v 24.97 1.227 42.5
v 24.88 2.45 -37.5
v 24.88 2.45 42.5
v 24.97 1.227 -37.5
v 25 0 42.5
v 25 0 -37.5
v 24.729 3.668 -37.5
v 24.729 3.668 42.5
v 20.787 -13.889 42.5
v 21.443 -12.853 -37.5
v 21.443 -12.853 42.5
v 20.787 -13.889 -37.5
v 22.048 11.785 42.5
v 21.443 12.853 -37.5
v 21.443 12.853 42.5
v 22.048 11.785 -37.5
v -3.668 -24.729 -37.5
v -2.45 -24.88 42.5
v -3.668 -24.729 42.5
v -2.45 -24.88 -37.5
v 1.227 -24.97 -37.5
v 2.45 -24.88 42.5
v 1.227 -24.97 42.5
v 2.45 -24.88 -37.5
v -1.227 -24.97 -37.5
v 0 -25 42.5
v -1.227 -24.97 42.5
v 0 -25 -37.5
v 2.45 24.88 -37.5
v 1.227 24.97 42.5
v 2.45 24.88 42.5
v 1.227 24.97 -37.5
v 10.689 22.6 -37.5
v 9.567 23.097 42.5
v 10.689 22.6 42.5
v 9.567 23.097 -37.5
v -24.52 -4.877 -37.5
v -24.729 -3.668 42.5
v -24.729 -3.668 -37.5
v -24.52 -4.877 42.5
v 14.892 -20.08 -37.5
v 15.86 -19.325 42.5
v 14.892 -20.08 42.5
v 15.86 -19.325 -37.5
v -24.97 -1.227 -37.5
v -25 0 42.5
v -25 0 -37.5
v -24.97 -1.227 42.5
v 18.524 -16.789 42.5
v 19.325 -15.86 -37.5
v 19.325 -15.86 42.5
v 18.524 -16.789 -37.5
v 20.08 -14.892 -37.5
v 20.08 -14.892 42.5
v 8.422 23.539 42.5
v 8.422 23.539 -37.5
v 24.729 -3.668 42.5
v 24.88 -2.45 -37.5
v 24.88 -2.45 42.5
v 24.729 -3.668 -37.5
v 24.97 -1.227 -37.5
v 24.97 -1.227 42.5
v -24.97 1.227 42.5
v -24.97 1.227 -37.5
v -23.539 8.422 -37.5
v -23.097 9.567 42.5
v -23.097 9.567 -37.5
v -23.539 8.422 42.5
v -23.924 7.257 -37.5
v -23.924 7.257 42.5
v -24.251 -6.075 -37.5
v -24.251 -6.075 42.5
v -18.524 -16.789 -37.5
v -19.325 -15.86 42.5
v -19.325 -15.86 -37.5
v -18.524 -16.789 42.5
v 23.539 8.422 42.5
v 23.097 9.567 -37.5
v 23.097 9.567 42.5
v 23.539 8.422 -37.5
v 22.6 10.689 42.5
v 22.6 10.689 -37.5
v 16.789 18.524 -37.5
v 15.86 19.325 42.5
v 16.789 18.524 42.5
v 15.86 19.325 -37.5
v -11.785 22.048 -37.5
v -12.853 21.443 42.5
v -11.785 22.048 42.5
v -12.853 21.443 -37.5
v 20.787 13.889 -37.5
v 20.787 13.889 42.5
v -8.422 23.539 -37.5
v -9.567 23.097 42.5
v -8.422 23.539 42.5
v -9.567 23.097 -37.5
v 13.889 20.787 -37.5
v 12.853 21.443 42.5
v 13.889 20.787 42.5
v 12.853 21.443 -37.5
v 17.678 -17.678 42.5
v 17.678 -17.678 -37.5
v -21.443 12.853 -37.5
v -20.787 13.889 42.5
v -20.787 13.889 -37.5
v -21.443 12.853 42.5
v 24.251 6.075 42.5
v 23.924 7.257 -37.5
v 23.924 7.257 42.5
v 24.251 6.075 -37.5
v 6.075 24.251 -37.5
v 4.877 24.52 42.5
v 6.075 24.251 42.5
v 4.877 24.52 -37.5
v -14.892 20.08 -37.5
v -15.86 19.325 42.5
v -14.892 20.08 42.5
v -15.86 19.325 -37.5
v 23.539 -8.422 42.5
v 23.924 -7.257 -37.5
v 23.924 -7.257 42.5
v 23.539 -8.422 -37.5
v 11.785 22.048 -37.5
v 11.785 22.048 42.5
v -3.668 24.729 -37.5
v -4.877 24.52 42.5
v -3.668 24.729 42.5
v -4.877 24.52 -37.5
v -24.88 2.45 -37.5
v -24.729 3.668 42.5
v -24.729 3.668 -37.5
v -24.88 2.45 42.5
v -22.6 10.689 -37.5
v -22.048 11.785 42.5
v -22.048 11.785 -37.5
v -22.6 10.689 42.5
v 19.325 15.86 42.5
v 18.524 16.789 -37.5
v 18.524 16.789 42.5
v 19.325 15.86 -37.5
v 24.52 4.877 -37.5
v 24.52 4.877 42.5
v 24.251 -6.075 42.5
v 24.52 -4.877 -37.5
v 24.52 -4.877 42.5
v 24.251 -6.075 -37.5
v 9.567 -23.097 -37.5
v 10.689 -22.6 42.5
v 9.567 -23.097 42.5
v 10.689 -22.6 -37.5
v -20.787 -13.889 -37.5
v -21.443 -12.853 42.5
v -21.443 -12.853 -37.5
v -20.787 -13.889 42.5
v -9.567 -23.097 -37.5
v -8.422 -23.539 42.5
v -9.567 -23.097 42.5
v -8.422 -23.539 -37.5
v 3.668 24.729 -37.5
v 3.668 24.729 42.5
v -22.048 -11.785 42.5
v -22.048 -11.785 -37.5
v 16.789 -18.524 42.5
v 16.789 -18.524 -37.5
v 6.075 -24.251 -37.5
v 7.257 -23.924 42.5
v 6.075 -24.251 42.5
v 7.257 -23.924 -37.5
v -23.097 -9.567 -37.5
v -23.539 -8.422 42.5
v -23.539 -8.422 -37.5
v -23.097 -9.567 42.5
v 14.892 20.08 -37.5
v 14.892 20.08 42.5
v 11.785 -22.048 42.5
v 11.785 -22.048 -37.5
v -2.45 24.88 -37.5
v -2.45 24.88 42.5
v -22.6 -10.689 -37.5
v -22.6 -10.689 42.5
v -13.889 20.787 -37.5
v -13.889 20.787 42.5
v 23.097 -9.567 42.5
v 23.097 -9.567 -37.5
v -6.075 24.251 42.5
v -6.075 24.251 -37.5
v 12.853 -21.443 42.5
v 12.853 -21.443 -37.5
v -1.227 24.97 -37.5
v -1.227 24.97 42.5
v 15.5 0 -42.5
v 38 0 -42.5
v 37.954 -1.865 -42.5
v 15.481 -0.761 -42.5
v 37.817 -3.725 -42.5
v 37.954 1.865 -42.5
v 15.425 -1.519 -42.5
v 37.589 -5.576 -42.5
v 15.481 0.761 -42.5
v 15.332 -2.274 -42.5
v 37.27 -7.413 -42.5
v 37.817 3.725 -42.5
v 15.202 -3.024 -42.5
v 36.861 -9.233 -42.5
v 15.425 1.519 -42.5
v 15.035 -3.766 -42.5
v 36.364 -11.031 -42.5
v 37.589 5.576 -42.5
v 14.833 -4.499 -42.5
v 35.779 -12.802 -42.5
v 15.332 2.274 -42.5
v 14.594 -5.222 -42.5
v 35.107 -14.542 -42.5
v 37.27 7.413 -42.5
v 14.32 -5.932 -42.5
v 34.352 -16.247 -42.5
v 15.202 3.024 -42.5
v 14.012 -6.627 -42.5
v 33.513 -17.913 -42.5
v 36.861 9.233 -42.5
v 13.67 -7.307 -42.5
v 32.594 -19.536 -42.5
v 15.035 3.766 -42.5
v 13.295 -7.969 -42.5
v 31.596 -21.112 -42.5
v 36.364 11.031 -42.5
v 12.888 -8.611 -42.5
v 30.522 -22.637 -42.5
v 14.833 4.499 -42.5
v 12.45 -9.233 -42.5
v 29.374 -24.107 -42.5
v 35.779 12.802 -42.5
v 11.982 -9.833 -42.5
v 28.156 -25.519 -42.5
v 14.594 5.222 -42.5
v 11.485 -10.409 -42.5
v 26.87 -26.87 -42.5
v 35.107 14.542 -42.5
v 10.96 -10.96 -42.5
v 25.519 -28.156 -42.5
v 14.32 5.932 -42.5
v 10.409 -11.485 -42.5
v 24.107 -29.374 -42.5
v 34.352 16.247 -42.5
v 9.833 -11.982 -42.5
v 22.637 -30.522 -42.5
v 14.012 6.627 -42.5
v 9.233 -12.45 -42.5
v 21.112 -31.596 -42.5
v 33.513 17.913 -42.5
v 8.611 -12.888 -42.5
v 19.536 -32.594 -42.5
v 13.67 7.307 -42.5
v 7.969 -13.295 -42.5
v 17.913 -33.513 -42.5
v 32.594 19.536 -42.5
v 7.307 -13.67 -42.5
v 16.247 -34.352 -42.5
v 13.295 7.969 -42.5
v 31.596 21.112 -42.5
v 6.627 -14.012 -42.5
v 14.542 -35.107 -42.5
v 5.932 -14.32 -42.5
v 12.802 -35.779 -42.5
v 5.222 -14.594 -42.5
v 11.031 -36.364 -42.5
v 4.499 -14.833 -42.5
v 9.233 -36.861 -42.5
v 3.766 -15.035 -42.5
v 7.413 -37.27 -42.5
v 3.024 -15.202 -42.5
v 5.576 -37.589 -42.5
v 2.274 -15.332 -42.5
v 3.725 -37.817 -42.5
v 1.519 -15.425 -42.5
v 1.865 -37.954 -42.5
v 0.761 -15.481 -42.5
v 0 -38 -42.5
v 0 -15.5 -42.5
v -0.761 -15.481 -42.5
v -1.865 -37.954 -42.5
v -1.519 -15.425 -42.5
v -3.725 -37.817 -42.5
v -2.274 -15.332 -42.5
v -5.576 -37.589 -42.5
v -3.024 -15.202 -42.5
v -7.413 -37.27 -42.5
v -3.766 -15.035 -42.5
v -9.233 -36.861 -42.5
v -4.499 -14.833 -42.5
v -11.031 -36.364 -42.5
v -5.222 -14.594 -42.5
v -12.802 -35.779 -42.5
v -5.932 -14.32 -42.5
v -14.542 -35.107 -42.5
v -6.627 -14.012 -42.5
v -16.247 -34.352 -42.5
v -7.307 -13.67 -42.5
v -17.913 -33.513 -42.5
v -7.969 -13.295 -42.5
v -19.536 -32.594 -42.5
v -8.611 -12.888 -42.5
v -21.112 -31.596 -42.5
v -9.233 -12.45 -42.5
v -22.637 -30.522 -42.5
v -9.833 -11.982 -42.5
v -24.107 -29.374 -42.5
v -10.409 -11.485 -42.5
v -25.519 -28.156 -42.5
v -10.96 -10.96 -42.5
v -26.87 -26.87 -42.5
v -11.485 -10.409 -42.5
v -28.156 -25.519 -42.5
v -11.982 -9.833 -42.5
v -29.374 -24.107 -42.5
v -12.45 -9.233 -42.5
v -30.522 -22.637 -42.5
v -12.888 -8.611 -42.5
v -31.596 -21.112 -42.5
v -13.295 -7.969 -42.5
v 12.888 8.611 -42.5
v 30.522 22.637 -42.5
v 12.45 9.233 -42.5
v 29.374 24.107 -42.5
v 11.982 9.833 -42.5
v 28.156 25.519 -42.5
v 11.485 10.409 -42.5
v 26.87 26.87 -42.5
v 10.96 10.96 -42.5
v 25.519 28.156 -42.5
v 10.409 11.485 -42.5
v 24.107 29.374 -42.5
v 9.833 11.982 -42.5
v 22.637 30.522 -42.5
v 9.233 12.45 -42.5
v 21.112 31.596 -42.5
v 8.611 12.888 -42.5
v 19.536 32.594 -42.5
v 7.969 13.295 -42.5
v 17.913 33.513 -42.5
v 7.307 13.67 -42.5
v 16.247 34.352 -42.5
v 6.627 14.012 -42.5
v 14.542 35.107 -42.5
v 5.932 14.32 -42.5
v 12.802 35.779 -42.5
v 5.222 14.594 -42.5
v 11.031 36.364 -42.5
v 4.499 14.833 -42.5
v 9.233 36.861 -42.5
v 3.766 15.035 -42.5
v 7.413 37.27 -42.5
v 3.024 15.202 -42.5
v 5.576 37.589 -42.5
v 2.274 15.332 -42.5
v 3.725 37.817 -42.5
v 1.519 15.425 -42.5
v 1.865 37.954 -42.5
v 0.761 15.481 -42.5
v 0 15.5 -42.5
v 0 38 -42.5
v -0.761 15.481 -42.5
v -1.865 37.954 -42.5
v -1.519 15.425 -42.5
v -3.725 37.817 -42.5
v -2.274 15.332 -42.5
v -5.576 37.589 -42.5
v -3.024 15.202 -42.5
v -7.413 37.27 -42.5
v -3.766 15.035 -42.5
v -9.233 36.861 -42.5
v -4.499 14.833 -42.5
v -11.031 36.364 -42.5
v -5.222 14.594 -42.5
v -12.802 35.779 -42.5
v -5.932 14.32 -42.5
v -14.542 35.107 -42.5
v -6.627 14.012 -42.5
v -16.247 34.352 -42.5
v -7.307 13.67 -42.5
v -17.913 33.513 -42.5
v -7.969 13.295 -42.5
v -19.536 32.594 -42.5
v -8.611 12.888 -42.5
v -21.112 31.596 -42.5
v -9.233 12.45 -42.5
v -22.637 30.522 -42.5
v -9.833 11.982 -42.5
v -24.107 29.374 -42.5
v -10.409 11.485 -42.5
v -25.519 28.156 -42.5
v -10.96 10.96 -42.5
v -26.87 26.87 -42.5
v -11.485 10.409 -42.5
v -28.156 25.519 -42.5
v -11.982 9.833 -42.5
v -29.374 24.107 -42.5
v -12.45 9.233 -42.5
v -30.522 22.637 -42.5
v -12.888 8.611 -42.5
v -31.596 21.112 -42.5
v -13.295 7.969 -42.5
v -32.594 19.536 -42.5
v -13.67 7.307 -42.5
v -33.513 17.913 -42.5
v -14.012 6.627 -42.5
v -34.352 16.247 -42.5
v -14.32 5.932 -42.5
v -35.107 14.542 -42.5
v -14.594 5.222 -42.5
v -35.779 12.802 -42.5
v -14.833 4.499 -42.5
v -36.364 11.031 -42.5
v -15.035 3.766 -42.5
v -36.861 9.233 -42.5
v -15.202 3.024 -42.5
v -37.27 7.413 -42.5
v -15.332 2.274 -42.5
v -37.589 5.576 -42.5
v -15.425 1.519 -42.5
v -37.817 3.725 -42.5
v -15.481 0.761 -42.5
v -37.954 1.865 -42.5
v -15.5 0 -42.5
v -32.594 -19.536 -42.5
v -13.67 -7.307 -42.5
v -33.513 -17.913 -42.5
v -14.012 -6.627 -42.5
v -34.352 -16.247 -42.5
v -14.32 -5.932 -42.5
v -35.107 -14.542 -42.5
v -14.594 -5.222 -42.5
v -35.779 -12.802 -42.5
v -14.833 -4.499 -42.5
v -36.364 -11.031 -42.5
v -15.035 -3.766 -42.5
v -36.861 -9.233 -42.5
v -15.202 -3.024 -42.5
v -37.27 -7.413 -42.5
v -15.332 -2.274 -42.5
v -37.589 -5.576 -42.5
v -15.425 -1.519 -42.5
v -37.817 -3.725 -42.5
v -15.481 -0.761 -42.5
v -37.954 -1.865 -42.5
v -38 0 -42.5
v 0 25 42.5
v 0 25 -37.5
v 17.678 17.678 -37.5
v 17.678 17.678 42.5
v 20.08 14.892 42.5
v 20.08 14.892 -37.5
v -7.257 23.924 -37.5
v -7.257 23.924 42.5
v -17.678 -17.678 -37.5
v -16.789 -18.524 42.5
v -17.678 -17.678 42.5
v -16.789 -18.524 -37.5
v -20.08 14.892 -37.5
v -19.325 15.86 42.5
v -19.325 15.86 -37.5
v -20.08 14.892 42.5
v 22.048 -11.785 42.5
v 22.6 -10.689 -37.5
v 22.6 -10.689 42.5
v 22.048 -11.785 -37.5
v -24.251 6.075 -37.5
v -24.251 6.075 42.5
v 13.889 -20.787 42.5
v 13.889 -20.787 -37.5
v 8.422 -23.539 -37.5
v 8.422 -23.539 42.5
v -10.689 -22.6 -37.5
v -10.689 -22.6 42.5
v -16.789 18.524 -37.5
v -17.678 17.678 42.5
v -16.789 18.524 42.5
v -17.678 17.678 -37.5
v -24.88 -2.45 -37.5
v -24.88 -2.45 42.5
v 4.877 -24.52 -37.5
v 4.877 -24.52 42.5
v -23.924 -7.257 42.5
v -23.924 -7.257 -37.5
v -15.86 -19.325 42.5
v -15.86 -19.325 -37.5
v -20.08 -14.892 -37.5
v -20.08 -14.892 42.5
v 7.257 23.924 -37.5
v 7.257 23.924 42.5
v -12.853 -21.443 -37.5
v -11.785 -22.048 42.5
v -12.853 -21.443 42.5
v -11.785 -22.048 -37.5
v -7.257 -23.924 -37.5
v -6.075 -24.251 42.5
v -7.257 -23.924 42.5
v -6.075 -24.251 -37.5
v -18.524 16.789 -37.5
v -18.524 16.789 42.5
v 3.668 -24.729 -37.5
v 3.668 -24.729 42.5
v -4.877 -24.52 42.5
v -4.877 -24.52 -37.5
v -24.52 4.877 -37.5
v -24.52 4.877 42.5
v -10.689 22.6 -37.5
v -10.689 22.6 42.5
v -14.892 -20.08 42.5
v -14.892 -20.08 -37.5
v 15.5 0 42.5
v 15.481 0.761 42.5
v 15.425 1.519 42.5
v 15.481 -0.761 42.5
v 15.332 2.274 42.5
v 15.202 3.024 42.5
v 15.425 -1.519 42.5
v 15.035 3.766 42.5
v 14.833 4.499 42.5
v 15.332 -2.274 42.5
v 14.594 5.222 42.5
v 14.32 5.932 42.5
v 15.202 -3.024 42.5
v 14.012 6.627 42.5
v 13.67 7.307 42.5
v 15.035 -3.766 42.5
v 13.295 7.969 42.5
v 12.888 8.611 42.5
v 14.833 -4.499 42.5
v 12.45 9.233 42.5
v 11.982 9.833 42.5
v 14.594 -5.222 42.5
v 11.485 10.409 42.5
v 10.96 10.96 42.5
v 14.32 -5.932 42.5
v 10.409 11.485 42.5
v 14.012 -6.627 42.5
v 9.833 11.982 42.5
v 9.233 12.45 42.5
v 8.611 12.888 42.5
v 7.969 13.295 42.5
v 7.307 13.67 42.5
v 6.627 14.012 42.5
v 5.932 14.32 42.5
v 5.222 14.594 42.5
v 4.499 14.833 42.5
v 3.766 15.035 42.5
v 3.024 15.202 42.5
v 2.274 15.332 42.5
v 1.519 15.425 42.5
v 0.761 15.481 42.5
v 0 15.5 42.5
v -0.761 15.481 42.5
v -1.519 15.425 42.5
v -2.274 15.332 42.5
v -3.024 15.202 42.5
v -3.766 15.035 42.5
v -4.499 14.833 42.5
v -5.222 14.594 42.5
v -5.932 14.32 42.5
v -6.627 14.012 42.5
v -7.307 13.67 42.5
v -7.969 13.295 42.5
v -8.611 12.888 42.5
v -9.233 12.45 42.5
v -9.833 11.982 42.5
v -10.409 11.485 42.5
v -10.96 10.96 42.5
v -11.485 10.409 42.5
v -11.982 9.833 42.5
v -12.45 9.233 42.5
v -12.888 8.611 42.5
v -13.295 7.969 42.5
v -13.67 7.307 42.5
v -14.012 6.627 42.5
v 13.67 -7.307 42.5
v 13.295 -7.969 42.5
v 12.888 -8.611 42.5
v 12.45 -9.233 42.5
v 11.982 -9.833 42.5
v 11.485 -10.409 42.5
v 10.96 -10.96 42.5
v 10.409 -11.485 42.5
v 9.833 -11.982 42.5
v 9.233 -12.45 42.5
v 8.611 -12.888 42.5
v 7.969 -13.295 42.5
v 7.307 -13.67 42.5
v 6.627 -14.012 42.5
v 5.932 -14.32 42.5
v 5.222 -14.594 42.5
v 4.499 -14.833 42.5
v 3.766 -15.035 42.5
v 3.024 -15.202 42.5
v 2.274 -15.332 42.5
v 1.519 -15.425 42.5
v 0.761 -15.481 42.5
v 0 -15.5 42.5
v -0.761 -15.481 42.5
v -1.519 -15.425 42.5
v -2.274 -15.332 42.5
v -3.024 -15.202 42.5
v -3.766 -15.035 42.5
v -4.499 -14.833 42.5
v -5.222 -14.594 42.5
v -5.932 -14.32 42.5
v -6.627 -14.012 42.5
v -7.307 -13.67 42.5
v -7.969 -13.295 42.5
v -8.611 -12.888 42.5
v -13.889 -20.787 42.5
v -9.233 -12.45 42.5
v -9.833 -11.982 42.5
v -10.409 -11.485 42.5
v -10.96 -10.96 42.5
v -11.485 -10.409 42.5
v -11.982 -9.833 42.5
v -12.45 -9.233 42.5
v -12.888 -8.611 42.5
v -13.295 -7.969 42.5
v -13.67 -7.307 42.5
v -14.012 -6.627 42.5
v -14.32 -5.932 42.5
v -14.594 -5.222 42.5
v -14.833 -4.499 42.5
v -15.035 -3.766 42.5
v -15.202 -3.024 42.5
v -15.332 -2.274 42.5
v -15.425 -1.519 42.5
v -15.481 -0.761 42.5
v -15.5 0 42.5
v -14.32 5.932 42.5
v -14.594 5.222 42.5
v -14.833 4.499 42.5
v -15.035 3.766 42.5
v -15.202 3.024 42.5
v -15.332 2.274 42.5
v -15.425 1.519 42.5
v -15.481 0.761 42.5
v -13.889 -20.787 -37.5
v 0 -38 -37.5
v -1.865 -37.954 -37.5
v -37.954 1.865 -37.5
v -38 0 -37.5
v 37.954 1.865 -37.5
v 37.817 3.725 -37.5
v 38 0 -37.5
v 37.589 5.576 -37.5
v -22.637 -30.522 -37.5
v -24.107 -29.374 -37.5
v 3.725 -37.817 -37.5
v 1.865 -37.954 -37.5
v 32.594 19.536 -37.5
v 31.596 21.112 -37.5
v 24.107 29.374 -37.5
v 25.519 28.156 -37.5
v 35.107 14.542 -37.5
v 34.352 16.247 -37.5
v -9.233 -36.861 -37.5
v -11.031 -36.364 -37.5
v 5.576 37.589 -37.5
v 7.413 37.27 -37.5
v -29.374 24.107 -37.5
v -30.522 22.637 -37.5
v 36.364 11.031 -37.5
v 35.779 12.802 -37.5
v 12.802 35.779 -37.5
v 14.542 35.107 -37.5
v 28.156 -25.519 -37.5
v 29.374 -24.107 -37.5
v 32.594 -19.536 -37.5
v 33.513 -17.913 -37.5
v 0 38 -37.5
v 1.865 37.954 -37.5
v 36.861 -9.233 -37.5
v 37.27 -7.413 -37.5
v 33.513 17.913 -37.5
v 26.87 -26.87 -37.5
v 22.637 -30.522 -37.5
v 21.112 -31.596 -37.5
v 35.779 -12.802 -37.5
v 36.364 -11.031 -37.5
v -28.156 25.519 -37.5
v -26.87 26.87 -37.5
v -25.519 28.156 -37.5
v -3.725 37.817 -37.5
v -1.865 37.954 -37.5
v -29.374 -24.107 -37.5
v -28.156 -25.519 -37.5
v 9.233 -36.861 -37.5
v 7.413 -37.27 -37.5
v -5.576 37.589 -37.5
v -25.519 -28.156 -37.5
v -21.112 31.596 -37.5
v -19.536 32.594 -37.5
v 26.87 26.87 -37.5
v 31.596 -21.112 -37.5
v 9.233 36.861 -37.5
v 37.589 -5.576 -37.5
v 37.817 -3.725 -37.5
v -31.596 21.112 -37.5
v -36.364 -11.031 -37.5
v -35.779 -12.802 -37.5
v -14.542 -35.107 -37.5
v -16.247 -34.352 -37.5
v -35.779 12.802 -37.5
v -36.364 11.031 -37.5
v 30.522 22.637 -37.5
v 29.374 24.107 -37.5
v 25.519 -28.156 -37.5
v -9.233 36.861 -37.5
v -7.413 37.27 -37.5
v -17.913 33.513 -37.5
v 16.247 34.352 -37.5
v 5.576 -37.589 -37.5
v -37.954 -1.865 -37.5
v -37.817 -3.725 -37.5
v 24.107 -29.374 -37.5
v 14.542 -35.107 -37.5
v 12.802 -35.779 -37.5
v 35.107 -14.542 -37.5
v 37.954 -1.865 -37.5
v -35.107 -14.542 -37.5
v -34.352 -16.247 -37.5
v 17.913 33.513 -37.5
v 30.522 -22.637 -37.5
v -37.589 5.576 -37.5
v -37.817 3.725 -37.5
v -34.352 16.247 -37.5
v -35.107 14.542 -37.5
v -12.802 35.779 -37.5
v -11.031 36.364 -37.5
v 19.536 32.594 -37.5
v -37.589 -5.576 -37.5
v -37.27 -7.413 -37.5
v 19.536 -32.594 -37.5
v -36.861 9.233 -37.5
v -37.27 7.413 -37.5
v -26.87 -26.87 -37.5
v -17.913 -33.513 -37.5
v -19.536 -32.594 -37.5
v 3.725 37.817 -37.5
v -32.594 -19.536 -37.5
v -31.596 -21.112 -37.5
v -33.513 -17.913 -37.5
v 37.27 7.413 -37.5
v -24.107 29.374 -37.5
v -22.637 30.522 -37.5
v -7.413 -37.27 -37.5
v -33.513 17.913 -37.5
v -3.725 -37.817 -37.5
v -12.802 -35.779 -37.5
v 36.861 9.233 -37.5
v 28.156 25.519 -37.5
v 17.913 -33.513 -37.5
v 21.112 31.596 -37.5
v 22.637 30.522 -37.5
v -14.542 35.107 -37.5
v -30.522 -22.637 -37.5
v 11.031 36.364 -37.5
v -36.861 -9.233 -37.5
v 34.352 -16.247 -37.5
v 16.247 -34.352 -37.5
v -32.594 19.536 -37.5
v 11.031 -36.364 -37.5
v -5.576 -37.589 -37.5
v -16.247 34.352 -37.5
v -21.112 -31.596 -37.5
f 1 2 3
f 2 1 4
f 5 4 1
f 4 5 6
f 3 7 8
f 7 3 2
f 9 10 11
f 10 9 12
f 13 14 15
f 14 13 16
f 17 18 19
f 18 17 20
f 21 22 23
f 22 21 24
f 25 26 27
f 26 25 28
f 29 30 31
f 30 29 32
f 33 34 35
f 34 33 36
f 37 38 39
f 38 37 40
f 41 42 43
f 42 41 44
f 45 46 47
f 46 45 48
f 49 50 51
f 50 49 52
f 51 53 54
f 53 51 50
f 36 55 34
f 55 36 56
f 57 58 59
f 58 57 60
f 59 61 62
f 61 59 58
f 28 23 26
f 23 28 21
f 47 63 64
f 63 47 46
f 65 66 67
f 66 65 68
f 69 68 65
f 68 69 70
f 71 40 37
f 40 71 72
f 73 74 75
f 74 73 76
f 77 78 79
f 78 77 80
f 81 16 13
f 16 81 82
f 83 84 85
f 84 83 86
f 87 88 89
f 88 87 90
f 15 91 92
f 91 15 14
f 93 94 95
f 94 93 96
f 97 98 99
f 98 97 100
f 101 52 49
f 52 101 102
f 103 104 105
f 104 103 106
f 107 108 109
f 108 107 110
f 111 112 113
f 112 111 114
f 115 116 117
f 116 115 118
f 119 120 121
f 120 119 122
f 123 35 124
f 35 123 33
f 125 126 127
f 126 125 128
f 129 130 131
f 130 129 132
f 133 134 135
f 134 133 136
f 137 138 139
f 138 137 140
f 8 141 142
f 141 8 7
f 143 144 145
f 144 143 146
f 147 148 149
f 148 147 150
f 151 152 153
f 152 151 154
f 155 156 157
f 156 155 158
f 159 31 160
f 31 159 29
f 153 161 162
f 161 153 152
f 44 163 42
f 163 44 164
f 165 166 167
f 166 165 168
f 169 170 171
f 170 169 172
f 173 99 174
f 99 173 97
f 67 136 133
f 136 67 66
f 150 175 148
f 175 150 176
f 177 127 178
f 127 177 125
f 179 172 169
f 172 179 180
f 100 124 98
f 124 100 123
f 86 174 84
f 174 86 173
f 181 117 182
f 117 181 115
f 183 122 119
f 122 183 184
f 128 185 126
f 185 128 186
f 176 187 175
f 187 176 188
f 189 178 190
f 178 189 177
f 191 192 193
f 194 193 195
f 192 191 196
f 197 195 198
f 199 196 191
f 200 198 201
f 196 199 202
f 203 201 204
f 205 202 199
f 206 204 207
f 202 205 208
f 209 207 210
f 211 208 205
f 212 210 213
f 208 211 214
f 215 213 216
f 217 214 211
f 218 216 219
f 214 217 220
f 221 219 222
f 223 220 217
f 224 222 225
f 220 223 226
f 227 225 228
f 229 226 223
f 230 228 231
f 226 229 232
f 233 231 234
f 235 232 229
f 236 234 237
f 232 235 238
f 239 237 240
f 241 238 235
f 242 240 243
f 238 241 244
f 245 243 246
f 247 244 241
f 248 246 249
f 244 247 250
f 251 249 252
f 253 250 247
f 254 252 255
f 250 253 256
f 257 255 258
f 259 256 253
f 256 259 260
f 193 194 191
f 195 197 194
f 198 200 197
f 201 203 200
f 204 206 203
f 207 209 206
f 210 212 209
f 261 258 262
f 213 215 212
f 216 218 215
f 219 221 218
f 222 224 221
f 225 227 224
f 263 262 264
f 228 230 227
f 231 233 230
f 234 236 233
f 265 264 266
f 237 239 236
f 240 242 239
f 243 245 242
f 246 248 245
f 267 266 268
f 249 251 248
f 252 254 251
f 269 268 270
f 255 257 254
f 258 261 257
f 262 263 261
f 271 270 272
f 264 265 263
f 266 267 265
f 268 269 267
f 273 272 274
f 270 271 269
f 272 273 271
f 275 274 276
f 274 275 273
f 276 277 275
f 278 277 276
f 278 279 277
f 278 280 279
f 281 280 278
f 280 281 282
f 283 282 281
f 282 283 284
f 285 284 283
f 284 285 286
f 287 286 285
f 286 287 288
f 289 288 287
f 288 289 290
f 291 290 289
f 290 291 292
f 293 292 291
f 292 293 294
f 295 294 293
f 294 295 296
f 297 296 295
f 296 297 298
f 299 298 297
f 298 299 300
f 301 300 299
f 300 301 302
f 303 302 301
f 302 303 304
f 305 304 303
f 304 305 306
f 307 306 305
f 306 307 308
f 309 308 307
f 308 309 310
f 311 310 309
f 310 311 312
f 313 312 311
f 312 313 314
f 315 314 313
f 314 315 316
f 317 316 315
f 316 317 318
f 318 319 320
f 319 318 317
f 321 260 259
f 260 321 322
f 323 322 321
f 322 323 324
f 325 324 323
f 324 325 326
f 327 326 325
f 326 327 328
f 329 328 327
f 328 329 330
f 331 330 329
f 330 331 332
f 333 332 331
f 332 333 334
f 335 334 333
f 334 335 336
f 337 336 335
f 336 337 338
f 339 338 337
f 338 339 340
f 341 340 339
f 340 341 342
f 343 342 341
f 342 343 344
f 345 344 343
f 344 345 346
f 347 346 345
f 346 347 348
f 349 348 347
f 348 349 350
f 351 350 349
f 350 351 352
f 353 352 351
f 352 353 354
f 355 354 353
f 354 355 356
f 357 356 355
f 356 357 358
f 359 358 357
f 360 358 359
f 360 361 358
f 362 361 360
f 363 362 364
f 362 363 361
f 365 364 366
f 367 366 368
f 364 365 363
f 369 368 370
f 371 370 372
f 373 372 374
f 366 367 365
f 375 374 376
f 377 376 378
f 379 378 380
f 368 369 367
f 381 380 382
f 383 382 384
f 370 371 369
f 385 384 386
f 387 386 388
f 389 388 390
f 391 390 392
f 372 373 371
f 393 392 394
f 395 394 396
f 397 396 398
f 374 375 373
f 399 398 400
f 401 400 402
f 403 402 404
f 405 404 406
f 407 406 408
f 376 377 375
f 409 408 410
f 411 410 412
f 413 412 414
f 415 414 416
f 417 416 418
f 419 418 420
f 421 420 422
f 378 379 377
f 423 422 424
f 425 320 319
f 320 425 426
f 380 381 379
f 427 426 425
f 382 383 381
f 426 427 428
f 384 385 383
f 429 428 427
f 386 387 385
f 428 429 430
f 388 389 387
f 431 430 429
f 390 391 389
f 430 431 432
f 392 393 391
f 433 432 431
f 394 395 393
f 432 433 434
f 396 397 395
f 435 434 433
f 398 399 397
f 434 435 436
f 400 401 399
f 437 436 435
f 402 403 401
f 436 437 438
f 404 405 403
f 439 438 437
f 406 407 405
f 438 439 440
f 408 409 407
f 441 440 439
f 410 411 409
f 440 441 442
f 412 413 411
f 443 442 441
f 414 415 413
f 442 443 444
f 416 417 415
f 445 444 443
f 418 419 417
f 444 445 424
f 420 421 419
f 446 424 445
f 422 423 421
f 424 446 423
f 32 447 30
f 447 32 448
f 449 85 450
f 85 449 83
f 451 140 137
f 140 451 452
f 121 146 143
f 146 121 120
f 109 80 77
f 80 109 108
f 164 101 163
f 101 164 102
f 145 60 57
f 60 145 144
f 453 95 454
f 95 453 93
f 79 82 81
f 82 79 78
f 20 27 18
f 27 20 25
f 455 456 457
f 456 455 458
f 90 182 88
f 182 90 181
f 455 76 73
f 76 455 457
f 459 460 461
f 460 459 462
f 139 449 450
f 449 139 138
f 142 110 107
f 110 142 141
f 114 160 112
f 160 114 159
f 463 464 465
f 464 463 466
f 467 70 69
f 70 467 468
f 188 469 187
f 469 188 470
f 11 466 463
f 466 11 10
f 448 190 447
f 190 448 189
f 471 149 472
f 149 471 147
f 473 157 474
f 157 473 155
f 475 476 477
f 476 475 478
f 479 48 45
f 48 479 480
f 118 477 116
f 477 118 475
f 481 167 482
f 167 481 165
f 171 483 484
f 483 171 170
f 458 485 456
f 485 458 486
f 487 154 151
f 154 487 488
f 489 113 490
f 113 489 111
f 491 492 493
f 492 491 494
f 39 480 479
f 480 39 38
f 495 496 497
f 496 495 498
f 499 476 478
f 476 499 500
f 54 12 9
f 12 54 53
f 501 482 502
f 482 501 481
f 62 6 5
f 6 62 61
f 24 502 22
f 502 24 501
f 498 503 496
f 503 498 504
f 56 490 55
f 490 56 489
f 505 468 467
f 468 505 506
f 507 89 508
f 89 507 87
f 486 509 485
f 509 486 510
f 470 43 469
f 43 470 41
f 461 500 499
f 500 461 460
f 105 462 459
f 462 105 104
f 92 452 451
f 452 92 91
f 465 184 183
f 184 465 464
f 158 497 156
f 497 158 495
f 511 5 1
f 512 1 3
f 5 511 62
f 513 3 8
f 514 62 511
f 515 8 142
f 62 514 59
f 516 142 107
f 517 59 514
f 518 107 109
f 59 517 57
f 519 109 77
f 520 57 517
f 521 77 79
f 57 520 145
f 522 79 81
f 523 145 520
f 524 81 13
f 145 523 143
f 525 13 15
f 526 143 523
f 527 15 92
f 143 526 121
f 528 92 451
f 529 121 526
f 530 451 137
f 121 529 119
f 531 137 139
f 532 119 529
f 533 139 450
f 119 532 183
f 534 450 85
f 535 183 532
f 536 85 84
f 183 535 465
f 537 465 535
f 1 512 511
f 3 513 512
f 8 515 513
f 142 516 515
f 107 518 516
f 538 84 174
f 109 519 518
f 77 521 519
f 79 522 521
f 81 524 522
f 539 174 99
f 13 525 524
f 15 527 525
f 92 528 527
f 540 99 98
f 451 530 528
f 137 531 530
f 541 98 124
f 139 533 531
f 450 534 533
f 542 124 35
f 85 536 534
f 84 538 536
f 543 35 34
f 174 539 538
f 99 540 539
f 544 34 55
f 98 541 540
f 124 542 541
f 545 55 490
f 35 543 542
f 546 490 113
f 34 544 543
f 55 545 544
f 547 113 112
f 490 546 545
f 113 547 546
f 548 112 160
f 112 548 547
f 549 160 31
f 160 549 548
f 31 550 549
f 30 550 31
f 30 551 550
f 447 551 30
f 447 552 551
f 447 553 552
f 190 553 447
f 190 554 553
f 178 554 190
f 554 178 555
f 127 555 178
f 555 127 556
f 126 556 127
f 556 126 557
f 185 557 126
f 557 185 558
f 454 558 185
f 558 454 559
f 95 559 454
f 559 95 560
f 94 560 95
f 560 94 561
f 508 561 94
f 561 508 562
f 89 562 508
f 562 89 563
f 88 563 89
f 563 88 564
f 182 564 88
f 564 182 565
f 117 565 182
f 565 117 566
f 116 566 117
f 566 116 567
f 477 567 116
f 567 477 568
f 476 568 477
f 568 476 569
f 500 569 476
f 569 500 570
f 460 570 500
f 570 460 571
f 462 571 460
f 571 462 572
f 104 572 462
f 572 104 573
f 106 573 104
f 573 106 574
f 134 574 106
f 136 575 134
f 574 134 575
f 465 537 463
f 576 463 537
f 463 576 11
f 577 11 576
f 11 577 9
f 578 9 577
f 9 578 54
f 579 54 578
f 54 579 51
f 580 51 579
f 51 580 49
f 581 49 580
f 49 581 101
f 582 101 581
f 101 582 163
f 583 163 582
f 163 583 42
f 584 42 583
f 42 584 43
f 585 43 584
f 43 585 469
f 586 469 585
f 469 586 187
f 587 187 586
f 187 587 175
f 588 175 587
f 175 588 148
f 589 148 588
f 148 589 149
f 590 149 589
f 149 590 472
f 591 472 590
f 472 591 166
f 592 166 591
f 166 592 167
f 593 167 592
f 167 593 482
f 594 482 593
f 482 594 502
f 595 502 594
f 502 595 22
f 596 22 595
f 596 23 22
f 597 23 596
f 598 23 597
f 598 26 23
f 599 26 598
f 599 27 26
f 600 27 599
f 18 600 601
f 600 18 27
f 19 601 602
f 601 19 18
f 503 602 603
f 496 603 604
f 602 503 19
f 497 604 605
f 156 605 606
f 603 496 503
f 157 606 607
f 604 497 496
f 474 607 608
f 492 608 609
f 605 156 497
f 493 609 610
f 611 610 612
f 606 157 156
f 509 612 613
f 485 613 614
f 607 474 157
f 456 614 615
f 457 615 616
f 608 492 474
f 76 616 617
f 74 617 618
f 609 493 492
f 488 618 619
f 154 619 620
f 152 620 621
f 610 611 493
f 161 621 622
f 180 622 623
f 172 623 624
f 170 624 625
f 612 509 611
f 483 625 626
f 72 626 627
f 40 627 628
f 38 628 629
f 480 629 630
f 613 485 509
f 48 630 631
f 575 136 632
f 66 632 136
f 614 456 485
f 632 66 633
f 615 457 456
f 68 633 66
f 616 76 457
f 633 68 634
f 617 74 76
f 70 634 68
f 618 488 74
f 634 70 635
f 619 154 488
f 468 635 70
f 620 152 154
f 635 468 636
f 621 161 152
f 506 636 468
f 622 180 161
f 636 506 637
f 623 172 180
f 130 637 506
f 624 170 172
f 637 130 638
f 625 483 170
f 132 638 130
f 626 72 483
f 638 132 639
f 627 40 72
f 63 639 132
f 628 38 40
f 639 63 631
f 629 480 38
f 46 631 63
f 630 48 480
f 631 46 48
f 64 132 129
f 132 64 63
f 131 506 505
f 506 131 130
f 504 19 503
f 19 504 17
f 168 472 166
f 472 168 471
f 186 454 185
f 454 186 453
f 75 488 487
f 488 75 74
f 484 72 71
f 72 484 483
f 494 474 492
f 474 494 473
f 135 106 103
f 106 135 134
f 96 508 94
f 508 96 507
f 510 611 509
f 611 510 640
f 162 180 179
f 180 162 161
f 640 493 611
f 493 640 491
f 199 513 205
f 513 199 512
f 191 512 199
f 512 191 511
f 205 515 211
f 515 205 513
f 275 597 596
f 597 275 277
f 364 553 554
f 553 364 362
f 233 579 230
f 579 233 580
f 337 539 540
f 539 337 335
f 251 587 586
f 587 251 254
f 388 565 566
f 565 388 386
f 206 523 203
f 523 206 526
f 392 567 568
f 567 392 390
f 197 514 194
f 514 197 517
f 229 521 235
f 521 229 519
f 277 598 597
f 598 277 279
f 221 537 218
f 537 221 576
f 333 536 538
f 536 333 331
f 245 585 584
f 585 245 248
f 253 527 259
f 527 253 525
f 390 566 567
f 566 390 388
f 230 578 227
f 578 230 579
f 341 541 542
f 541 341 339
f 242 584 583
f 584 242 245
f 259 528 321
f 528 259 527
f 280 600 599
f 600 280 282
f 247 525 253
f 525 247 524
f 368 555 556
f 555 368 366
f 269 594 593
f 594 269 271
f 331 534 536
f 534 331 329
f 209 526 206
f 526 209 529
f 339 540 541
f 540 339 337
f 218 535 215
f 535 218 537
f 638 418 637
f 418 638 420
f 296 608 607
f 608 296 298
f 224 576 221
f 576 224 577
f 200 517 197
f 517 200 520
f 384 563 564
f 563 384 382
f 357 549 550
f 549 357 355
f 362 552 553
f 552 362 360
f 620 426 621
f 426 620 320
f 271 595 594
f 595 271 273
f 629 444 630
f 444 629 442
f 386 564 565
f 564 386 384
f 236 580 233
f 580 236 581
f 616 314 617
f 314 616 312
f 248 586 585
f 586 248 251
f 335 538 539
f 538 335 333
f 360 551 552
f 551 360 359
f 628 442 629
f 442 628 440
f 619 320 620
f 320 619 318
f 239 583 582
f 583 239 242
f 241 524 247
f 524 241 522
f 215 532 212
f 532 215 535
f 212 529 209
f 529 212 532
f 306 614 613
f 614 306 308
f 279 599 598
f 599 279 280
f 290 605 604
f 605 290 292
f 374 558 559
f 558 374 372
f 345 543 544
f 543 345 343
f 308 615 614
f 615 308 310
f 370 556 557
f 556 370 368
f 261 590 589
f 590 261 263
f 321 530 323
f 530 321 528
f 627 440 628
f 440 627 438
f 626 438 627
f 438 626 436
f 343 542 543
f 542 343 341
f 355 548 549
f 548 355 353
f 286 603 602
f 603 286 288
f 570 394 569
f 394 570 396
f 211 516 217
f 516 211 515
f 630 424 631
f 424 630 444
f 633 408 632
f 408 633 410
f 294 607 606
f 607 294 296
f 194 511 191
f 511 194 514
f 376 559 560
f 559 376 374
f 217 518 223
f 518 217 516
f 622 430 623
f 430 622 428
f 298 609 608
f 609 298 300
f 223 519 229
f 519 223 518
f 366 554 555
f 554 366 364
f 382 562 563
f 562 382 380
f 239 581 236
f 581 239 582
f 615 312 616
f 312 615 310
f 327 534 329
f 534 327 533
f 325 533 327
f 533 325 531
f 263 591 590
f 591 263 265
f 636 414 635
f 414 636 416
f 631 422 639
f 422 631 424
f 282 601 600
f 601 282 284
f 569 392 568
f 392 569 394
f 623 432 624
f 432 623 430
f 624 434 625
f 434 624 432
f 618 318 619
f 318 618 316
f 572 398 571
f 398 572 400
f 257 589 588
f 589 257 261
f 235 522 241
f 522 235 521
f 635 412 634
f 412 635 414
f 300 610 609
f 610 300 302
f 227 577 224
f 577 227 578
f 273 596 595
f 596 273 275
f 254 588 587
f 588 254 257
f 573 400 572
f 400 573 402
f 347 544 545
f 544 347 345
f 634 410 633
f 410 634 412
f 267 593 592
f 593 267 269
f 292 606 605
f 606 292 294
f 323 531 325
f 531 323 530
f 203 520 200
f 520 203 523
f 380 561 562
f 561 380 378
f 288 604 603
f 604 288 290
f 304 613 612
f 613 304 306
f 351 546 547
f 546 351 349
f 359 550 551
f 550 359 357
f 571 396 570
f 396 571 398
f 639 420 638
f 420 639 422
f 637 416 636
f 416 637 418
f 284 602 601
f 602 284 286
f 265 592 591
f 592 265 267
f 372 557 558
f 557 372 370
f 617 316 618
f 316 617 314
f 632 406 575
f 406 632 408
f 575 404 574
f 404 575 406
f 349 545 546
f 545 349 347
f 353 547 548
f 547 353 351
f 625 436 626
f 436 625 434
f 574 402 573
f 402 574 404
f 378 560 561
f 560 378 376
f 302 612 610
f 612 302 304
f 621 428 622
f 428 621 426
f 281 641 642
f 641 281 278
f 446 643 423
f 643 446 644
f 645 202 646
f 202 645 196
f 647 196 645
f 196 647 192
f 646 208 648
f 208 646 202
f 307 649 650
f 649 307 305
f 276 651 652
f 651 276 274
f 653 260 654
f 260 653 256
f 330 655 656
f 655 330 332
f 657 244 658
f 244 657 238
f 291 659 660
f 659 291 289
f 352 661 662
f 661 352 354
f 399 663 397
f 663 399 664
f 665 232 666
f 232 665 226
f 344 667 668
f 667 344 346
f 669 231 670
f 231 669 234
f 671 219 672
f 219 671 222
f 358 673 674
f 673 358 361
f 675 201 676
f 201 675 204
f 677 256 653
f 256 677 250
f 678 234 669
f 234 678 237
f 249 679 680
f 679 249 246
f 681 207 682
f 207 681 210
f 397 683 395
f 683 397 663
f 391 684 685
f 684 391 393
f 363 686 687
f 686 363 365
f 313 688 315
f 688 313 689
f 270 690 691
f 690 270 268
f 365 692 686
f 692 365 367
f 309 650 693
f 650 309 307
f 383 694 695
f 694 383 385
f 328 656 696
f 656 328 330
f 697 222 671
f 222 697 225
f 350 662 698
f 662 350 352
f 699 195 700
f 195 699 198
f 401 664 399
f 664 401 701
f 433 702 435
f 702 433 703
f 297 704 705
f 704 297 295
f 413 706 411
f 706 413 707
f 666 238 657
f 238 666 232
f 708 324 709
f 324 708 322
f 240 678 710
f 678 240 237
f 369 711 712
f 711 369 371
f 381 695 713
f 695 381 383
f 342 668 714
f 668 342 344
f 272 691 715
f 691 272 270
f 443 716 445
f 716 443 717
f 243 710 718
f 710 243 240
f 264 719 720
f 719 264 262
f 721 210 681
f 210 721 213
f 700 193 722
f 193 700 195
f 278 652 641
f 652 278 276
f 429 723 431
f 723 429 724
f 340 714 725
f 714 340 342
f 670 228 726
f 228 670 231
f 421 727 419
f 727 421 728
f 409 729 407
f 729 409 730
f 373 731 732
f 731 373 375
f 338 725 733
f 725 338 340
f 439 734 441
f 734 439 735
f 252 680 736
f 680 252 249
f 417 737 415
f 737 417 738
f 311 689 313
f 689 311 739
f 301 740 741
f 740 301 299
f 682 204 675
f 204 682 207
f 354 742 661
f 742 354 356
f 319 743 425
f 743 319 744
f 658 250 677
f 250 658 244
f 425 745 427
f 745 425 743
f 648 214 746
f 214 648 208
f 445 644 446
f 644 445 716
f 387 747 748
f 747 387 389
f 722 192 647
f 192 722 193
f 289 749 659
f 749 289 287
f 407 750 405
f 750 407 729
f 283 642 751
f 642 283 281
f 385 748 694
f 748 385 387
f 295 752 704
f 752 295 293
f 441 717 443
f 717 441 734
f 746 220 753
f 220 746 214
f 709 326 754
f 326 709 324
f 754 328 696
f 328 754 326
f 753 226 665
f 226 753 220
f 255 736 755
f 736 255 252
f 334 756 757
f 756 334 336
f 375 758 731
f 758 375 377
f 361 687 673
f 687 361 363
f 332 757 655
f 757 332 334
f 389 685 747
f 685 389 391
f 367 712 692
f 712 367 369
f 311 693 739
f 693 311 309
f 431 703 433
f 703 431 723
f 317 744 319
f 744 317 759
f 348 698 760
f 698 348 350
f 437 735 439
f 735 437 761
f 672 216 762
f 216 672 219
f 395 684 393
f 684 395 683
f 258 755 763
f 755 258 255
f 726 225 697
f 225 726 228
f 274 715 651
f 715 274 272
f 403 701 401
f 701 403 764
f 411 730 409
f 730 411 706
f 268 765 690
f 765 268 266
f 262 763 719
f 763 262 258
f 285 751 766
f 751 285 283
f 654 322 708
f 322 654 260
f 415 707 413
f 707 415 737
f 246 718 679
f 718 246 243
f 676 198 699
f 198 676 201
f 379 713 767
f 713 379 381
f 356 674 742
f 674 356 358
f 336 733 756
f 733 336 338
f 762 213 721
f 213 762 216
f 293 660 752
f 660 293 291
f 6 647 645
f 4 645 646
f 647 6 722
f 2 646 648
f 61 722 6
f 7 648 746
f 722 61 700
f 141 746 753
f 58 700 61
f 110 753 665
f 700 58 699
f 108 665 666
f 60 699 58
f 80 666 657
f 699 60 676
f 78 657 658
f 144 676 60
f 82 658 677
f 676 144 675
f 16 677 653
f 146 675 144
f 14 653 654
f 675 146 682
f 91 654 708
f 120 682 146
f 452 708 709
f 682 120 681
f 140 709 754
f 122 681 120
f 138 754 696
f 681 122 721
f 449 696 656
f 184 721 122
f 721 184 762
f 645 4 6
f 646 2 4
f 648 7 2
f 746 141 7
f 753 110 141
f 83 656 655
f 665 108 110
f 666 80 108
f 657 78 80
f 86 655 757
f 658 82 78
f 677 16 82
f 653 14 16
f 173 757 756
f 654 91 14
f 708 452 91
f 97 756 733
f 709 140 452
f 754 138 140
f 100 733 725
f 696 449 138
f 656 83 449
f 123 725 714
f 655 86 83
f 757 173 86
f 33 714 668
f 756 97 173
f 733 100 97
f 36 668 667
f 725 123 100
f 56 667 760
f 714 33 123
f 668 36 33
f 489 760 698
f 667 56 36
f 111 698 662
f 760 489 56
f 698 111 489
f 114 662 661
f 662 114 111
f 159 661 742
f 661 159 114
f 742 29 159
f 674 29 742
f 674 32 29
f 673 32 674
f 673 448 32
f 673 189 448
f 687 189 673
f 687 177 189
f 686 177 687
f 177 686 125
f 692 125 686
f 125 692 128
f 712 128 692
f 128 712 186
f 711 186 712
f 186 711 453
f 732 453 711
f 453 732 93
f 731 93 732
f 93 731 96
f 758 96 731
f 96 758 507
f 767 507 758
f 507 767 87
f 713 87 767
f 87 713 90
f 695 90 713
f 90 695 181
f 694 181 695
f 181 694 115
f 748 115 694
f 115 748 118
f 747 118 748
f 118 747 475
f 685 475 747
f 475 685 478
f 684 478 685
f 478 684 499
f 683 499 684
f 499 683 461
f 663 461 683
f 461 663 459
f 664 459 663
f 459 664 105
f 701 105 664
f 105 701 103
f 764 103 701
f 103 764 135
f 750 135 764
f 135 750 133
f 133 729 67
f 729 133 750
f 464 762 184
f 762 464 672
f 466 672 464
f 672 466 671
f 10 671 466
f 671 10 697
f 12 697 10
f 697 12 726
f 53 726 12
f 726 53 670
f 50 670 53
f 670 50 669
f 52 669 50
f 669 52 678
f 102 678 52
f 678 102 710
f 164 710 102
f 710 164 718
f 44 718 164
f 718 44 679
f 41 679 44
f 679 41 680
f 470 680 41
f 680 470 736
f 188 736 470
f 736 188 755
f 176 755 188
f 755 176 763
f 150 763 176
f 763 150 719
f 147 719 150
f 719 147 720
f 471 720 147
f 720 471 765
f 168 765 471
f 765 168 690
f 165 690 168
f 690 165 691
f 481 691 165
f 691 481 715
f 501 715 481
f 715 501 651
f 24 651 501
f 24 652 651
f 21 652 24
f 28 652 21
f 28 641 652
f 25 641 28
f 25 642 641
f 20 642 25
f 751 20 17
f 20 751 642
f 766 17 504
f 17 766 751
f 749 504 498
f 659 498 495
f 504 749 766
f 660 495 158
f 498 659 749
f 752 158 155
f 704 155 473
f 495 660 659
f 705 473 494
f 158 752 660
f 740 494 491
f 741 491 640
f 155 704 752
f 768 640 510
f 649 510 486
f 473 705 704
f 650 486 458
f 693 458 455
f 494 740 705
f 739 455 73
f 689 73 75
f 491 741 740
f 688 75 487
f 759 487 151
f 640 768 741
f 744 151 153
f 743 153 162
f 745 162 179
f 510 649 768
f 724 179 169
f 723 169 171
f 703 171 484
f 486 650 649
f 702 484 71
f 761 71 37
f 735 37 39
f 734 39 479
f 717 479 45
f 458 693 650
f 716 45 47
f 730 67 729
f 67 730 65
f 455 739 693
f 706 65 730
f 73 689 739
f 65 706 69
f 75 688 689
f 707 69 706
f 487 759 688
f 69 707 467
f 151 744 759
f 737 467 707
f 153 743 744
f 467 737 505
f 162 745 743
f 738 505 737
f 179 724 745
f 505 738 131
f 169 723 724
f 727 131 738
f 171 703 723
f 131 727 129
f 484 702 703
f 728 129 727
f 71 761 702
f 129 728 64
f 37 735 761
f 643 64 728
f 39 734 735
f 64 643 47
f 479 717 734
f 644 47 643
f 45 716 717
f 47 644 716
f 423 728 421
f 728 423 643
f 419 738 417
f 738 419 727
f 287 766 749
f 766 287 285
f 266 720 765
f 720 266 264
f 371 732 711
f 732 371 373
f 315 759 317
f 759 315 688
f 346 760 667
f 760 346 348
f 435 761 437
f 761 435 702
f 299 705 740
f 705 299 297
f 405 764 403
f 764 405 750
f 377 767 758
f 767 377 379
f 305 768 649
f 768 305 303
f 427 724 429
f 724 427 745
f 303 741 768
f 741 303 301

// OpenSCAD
/*
 * 30mm threaded to Olympic Barbell (2 inch / 50mm) adapter 
 * Double check dimensions of your barbell dimensions before printing.
 * This is 10 hours+ print, and it is a tight fit for *my* barbell:
 * My barbell screw:
 *  - 30 mm external diameter
 *
 * Hantelscheibe:
 *  - Breite: 75 mm
 *
 *  - 6.5 mm pitch
 *  - 3.5 mm wide
 *  - 1.5 mm deep
 *
 * Olympic barbell weight ending specs:
 *  - 49.4 mm - 49.56 mm diameter
 *  - 431.79 mm length
 *  - 41.27 mm stopper length
 */

$fn=128;
inner_diameter = 31;
outer_diameter = 50;
stopper_diameter = 76;
stopper_height = 5;
weight_width = 75;                  // mm
adapter_height = 2 * stopper_height + weight_width;    // mm

difference() {
    echo("Adapter height:", adapter_height);
    echo("Stopper height:", stopper_height);
    cylinder(d=outer_diameter, h=adapter_height, center=true);
    cylinder(d=inner_diameter, h=adapter_height, center=true);
}

translate([0,0,0]) {
    difference() {
        translate([0,0,-(adapter_height-stopper_height)/2]) cylinder(d=stopper_diameter, h=stopper_height, center=true);
        translate([0,0,-(adapter_height-stopper_height)/2]) cylinder(d=inner_diameter, h=stopper_height, center=true);
    }    
}
